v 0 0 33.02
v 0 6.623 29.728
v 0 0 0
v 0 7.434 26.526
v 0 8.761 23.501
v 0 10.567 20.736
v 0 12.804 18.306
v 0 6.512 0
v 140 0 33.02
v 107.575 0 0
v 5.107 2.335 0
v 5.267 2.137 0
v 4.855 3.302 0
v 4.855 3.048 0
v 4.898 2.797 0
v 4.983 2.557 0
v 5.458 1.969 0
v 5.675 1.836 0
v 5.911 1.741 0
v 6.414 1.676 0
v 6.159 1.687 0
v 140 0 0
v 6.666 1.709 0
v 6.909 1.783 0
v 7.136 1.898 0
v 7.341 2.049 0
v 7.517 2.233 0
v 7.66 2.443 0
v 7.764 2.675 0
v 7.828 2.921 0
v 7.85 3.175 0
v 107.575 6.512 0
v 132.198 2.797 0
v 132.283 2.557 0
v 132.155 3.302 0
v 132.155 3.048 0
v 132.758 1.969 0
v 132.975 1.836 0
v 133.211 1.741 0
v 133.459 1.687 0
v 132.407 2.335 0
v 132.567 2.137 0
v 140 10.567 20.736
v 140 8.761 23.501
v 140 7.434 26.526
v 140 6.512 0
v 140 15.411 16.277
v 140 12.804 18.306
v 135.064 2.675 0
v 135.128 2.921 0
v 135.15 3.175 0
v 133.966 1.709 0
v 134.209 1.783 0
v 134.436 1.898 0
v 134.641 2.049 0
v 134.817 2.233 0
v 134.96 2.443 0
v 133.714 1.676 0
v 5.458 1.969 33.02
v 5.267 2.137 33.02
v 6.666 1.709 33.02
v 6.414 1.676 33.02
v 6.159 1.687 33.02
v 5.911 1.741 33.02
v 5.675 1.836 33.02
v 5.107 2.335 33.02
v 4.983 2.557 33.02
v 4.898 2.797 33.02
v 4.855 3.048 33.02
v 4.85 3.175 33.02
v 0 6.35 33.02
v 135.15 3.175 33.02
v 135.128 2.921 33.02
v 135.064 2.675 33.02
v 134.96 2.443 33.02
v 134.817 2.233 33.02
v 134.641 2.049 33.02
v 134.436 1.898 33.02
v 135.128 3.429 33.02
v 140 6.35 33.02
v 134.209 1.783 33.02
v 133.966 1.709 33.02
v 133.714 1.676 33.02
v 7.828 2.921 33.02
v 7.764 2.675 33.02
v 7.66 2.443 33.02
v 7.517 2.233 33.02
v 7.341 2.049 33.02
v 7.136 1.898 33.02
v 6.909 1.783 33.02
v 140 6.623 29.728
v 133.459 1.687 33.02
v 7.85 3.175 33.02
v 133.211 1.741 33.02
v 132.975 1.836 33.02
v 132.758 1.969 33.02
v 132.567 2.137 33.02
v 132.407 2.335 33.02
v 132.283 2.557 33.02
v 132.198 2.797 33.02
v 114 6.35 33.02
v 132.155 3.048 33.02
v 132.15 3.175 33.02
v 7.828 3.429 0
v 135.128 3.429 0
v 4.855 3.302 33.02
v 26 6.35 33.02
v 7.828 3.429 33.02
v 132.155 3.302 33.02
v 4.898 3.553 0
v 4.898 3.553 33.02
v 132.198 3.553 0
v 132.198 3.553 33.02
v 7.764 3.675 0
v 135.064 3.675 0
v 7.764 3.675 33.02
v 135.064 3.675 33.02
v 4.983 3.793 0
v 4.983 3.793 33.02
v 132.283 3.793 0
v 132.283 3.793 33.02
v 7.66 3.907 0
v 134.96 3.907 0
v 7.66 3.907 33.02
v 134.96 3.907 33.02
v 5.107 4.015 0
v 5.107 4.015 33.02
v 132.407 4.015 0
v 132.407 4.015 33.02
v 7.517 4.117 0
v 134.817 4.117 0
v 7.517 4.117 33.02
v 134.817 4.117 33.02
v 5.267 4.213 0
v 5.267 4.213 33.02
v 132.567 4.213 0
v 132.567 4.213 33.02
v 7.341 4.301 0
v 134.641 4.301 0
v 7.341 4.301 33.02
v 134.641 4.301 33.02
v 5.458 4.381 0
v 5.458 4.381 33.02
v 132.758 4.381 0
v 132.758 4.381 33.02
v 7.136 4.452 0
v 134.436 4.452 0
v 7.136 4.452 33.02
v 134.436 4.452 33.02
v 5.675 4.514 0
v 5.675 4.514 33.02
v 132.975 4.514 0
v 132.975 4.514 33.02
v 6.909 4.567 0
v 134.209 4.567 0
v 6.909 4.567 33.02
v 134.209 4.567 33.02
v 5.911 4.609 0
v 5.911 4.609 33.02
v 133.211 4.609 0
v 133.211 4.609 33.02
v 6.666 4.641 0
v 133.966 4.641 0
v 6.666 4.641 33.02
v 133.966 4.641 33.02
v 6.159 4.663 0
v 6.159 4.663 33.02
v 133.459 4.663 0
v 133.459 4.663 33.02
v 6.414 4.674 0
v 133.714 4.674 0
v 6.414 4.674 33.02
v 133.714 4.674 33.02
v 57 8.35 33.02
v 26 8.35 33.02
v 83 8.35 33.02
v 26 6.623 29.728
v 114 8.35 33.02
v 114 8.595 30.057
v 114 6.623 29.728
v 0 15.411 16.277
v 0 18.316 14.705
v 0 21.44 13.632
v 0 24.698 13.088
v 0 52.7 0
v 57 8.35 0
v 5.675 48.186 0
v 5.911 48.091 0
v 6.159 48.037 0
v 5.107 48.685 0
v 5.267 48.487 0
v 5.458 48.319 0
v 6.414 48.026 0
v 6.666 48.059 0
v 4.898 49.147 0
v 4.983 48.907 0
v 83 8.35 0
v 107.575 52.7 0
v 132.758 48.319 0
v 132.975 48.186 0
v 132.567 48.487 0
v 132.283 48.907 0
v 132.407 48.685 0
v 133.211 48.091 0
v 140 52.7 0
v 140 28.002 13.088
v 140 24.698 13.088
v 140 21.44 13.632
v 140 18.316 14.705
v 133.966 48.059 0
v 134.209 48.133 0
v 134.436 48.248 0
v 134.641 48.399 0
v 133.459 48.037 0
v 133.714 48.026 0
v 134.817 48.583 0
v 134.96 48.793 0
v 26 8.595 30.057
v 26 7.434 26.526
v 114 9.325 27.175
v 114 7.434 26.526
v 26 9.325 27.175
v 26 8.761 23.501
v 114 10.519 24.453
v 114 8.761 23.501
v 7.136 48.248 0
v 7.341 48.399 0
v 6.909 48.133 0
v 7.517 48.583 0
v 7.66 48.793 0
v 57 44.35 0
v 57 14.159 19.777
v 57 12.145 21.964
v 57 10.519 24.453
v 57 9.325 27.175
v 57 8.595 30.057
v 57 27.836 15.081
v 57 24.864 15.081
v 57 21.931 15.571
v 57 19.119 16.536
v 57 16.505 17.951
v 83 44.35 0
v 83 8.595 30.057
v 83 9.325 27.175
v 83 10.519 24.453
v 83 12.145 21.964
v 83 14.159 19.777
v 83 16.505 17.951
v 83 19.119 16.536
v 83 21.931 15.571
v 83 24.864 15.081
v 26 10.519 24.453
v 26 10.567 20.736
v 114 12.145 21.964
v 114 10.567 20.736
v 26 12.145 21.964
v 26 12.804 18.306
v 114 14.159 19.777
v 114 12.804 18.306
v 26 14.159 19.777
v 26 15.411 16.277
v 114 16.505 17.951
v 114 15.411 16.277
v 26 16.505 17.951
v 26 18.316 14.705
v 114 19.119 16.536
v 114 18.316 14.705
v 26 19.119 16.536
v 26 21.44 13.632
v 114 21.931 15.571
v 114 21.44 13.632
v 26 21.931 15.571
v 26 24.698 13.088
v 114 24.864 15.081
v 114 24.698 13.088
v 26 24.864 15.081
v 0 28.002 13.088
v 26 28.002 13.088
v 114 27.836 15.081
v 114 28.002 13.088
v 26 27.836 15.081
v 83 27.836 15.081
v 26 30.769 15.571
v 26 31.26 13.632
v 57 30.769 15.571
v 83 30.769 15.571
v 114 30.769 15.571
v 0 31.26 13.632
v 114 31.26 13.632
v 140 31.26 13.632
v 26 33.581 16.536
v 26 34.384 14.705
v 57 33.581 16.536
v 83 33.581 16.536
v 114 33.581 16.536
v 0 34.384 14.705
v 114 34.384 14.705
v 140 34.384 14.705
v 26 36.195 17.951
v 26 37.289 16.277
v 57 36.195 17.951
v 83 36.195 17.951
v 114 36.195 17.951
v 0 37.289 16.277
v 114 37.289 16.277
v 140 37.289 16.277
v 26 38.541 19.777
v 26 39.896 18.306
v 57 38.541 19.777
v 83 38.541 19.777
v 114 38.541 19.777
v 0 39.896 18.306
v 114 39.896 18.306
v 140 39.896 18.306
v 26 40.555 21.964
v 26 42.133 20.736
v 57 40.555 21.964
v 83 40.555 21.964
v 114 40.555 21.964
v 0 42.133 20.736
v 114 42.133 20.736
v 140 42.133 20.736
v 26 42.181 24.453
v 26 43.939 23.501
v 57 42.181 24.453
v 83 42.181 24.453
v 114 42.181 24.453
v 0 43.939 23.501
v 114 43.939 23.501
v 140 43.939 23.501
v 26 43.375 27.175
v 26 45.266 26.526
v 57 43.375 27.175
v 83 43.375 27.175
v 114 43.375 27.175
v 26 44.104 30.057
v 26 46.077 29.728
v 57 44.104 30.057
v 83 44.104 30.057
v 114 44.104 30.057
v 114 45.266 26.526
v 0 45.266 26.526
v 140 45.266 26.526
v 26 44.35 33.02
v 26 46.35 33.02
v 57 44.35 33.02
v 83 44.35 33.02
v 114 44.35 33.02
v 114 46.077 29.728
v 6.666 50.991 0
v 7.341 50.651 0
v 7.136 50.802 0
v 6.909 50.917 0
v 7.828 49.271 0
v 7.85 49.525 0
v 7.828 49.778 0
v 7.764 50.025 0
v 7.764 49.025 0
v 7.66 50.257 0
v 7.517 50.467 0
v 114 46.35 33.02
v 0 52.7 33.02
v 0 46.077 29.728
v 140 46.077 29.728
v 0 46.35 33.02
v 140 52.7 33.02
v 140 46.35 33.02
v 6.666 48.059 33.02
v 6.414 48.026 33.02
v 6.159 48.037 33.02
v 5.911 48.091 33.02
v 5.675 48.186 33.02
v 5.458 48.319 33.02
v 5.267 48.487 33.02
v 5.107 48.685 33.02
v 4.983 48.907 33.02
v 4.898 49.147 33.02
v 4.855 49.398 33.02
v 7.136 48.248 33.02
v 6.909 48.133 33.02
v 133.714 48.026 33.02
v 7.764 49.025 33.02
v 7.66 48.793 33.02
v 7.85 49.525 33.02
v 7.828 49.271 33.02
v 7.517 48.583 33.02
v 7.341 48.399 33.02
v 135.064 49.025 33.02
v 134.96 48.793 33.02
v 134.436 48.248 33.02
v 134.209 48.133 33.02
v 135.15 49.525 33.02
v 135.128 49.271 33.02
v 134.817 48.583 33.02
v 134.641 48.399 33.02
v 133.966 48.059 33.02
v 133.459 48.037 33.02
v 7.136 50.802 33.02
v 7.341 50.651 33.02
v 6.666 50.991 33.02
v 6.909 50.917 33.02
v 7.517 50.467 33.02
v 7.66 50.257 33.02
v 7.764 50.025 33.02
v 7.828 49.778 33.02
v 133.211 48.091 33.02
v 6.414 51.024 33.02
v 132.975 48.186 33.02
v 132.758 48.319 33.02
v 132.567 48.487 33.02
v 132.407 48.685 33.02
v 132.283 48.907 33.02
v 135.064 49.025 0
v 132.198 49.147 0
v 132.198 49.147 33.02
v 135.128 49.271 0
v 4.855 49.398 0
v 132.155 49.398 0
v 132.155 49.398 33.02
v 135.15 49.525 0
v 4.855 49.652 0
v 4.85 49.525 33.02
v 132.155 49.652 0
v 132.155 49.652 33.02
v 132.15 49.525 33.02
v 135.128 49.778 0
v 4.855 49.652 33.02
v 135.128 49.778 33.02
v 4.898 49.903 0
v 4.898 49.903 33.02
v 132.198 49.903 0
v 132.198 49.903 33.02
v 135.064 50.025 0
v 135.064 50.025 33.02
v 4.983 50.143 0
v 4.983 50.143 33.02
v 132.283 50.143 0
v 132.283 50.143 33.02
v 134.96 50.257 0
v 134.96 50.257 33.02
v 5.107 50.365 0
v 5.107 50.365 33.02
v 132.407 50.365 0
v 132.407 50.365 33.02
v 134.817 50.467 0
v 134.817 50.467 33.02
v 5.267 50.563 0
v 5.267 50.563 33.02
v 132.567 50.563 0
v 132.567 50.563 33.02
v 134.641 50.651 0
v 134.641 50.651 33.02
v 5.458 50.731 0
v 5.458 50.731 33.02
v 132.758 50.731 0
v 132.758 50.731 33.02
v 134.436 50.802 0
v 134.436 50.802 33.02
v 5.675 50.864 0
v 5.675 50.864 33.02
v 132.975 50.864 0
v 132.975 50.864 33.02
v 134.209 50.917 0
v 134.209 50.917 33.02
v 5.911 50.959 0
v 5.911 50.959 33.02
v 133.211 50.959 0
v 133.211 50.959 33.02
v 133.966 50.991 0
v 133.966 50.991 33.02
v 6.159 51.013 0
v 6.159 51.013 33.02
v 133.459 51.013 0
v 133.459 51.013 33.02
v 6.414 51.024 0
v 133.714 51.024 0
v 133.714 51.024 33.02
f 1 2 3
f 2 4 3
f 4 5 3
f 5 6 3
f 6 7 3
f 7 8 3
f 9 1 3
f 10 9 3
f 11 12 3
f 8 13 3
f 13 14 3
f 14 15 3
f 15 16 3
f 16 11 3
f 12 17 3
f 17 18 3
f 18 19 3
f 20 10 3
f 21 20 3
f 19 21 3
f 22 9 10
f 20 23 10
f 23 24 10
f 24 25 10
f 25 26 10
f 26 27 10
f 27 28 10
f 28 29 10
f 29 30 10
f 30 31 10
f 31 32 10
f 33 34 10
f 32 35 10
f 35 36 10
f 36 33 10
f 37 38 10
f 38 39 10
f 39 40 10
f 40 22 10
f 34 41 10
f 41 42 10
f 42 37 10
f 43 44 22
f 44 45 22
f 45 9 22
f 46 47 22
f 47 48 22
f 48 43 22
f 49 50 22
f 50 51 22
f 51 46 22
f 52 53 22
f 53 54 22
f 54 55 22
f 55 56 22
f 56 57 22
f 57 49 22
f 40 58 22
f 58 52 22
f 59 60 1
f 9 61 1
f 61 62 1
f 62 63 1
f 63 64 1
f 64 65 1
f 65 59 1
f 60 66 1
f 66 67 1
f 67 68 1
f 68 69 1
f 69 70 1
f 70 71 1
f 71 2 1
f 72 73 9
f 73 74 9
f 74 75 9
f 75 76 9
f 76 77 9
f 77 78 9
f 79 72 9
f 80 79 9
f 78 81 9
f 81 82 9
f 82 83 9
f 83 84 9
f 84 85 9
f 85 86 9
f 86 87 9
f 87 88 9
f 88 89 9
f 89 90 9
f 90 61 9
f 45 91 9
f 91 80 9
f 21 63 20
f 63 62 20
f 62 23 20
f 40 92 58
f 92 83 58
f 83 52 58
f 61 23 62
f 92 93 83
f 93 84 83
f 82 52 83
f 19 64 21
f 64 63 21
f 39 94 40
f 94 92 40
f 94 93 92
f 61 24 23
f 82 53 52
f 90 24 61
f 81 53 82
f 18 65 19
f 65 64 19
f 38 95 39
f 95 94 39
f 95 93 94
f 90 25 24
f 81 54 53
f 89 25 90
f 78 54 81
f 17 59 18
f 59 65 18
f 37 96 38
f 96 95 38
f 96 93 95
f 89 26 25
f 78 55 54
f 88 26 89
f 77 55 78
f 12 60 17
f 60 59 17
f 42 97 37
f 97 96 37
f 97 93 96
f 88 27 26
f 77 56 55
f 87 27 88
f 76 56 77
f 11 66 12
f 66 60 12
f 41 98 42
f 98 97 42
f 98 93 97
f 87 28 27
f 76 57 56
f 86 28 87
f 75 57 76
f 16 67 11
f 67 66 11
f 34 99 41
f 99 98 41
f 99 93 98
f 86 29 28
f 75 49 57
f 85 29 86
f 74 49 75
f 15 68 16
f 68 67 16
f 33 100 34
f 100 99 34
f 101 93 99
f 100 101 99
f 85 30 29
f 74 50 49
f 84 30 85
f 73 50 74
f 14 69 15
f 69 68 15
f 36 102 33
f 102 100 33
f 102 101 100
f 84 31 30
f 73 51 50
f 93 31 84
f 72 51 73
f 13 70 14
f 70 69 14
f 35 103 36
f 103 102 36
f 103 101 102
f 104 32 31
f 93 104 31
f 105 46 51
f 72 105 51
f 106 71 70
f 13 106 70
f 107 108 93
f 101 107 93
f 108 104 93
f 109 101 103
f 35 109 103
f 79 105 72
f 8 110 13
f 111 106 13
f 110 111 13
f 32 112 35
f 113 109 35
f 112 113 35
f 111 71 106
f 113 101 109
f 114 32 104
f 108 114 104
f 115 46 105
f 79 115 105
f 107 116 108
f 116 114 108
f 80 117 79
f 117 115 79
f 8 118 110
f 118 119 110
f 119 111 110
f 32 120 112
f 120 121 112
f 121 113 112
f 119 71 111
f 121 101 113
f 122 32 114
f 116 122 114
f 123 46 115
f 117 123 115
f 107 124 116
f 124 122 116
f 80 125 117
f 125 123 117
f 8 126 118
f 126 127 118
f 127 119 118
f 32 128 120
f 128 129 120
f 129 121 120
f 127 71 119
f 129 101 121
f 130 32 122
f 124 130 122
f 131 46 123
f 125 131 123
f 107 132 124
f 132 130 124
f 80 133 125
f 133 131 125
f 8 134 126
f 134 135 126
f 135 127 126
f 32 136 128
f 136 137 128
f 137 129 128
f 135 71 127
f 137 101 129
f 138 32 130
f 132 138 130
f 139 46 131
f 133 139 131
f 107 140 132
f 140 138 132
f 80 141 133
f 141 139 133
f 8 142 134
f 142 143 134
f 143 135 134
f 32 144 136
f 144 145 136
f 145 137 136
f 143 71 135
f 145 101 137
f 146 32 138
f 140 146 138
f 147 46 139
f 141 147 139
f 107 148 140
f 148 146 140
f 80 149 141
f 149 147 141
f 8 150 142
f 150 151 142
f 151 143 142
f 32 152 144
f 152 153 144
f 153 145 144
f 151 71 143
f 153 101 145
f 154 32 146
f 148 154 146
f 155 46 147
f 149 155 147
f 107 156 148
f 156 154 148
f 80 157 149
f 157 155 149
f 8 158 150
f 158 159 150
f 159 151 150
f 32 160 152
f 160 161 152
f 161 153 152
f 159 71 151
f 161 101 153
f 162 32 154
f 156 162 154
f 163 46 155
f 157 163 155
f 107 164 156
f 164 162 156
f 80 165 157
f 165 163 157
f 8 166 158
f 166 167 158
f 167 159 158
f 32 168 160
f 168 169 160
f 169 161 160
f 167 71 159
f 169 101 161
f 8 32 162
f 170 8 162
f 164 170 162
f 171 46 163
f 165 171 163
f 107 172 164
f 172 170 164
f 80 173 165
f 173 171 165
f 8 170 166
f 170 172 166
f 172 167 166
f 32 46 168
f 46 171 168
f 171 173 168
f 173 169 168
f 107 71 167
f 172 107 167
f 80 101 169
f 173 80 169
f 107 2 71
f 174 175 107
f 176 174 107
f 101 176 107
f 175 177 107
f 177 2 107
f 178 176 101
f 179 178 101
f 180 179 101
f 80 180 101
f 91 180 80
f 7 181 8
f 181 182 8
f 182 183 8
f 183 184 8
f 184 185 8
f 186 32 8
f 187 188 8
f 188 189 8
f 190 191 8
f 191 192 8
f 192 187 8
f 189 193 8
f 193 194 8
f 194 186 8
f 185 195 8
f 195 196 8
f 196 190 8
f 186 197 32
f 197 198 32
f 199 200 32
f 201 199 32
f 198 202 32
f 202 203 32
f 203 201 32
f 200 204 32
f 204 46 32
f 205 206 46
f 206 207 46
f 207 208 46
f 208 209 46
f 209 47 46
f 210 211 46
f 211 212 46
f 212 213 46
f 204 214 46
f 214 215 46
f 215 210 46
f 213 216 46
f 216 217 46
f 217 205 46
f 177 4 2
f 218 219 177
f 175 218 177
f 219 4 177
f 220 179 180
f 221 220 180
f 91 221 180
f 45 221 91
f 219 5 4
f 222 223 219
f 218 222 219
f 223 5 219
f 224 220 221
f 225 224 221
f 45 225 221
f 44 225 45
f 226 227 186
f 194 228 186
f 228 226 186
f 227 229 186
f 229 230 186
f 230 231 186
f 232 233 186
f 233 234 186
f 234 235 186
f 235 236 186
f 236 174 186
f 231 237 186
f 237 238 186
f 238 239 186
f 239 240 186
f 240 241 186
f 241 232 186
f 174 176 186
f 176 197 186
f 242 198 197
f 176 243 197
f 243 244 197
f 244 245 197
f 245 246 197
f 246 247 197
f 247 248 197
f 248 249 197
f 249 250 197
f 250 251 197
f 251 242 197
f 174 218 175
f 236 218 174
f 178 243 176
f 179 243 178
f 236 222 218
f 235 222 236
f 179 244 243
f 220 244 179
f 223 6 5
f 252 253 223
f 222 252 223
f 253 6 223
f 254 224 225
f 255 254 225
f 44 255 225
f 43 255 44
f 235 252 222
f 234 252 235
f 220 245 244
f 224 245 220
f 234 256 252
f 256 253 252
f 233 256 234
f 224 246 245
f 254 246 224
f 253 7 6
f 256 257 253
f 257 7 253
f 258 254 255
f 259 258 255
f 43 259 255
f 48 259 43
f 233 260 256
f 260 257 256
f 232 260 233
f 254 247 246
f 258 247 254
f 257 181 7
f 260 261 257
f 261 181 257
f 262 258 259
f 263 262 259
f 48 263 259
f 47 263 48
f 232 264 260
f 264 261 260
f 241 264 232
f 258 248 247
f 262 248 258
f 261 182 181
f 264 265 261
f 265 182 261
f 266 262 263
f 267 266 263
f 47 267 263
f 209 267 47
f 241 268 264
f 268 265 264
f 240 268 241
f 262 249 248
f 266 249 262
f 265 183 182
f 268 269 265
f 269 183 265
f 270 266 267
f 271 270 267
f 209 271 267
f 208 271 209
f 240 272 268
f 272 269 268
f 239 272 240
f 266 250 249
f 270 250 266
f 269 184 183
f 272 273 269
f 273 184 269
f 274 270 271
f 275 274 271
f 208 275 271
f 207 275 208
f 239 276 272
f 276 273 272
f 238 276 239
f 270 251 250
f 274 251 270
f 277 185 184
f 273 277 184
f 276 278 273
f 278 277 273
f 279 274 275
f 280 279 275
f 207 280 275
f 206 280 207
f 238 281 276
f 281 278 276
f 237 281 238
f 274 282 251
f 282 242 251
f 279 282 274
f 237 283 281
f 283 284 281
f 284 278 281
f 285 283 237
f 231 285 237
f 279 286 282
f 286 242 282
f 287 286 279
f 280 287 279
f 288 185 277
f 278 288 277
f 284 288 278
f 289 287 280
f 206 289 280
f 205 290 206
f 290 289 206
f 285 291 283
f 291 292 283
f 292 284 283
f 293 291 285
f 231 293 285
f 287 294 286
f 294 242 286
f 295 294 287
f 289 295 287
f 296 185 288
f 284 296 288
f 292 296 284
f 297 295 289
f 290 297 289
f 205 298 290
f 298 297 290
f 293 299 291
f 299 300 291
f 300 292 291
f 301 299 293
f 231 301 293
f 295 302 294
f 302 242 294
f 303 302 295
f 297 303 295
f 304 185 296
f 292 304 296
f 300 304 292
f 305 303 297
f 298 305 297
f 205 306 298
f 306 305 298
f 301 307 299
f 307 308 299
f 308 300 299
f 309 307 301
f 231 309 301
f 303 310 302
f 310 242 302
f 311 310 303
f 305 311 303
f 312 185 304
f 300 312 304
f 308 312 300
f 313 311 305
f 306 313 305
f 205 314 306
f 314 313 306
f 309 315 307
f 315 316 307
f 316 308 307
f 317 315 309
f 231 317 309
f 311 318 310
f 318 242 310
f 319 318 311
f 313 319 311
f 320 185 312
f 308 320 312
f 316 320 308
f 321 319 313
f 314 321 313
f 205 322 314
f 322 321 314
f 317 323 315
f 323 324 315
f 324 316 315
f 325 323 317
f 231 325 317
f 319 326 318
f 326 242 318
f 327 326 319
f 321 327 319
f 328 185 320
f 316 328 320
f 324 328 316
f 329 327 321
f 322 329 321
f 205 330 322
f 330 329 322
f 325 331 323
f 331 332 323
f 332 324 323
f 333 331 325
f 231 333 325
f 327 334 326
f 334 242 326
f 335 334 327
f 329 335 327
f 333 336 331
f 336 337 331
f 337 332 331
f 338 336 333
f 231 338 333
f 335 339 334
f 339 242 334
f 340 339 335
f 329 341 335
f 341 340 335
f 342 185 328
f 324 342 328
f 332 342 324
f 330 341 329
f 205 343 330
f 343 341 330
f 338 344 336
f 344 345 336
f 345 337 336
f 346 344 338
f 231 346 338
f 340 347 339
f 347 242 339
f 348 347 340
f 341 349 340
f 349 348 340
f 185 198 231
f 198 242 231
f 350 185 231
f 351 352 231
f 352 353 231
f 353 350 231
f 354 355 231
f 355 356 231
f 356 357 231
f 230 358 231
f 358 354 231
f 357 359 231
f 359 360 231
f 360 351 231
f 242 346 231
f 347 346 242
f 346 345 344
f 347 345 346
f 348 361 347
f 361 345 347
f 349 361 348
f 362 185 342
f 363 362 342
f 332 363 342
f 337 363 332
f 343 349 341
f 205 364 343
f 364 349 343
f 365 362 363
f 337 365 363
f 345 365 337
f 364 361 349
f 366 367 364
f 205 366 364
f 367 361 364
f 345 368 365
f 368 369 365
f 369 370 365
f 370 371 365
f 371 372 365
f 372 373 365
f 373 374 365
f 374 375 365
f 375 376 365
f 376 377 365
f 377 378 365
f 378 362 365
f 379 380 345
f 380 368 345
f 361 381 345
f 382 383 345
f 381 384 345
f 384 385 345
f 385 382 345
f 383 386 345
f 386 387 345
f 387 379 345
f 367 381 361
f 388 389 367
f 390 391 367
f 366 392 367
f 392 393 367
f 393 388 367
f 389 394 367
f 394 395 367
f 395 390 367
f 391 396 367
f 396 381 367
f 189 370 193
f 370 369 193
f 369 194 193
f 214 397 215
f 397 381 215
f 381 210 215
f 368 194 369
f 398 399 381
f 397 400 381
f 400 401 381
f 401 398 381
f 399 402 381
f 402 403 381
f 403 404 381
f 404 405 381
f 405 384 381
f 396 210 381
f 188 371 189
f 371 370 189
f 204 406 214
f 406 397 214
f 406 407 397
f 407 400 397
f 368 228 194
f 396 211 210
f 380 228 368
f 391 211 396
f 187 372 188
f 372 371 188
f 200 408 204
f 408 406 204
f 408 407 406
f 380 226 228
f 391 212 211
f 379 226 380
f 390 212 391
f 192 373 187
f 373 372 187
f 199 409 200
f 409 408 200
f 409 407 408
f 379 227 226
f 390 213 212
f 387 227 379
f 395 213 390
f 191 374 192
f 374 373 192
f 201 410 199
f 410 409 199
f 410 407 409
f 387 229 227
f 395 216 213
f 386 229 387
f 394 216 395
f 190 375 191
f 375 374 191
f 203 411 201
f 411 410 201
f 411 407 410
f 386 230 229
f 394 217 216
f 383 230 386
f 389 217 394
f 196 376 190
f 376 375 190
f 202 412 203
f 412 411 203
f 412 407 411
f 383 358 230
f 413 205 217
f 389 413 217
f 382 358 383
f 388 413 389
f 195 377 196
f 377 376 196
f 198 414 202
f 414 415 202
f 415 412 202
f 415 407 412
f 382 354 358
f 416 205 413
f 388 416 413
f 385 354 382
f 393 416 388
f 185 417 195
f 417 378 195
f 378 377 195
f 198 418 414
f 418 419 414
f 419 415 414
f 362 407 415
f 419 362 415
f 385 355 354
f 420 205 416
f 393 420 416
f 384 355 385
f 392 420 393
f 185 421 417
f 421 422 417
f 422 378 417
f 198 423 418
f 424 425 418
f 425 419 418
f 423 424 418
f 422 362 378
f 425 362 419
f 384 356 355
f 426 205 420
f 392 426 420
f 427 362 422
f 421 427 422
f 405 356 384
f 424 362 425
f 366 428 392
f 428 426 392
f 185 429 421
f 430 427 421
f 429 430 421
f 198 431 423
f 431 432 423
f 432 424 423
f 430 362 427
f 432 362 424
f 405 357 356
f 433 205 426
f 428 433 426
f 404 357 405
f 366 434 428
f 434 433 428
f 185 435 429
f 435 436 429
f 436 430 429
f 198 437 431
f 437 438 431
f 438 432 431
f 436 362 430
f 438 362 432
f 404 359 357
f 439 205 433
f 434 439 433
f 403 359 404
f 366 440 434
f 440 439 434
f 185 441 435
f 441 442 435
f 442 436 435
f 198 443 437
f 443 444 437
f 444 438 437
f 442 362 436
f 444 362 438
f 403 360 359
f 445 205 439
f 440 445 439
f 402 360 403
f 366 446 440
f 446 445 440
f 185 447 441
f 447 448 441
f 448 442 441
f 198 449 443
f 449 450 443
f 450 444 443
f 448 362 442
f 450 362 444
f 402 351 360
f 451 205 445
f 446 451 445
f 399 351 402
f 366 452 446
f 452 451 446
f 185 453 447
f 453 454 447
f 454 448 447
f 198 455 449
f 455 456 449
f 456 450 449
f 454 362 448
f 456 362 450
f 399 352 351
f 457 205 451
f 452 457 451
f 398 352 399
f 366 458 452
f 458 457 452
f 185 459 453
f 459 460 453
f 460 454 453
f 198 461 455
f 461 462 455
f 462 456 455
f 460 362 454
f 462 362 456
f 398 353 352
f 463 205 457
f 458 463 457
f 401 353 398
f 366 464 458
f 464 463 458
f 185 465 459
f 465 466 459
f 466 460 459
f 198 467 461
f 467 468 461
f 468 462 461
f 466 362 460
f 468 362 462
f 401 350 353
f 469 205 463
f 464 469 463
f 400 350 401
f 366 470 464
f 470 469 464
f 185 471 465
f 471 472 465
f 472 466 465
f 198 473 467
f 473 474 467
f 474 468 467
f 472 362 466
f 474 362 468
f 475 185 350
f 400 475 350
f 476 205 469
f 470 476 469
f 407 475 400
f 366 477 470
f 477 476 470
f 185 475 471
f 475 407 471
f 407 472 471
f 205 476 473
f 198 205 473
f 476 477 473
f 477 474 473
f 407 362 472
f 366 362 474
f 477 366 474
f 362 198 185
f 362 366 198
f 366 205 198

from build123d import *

# Parameters (mm, degrees)
SKETCH1_W               = 139.999999908
SKETCH1_H               = 52.6999962
BOSS_EXTRUDE1_DEPTH     = 33.02
CUT_EXTRUDE1_DEPTH      = 154.191416123
CUT_EXTRUDE1_DEPTH_BACK = 154.191416123
CUT_EXTRUDE2_DEPTH      = 26
CUT_EXTRUDE3_START      = -26
CUT_EXTRUDE3_DEPTH      = 26
CUT_EXTRUDE4_DEPTH      = 154.191416123
CUT_EXTRUDE4_DEPTH_BACK = 154.191416123
SKETCH6_W               = 26
SKETCH6_H               = 36
CUT_EXTRUDE5_DEPTH      = 154.191416123
CUT_EXTRUDE5_DEPTH_BACK = 154.191416123
SKETCH7_R               = 1.500000048
SKETCH7_R_2             = 1.5


with BuildPart() as part:
    # Sketch1 → Boss-Extrude1 (new body)
    with BuildSketch(Plane.XY):
        with Locations((69.999999954, 26.3499981)):
            Rectangle(SKETCH1_W, SKETCH1_H)
    extrude(amount=BOSS_EXTRUDE1_DEPTH)

    # Sketch2 → Cut-Extrude1 (cut, two sides: drawn at the far end of the back side and taken through both)
    with BuildSketch(Plane.ZY.offset(-CUT_EXTRUDE1_DEPTH_BACK)):
        with BuildLine():
            Line((33.02, 44.3499981), (33.02, 8.3499981))
            ThreePointArc((33.02, 8.3499981), (15.02, 26.3499981), (33.02, 44.3499981))
        make_face()
    extrude(amount=CUT_EXTRUDE1_DEPTH + CUT_EXTRUDE1_DEPTH_BACK, mode=Mode.SUBTRACT)

    # Sketch3 → Cut-Extrude2 (cut)
    with BuildSketch(Plane.ZY):
        with BuildLine():
            Line((33.02, 46.3499981), (33.02, 6.3499981))
            ThreePointArc((33.02, 6.3499981), (13.02, 26.3499981), (33.02, 46.3499981))
        make_face()
    extrude(amount=-CUT_EXTRUDE2_DEPTH, mode=Mode.SUBTRACT)

    # Sketch5 → Cut-Extrude3 (cut)
    with BuildSketch(Plane(origin=(139.999999908, 0, 0), x_dir=(0, 0, -1), z_dir=(1, 0, 0)).offset(CUT_EXTRUDE3_START)):
        with BuildLine():
            Line((-33.02, 46.3499981), (-33.02, 6.3499981))
            ThreePointArc((-33.02, 6.3499981), (-13.02, 26.3499981), (-33.02, 46.3499981))
        make_face()
    extrude(amount=CUT_EXTRUDE3_DEPTH, mode=Mode.SUBTRACT)

    # Sketch6 → Cut-Extrude4 (cut, two sides: drawn at the far end of the back side and taken through both)
    with BuildSketch(Plane(origin=(0, 0, 0), x_dir=(-1, 0, 0), z_dir=(0, 0, -1)).offset(-CUT_EXTRUDE4_DEPTH_BACK)):
        with Locations((-69.999999954, 26.3499981)):
            Rectangle(SKETCH6_W, SKETCH6_H)
    extrude(amount=CUT_EXTRUDE4_DEPTH + CUT_EXTRUDE4_DEPTH_BACK, mode=Mode.SUBTRACT)

    # Sketch7 → Cut-Extrude5 (cut, two sides: drawn at the far end of the back side and taken through both)
    with BuildSketch(Plane.XY.offset(33.02).offset(-CUT_EXTRUDE5_DEPTH_BACK)):
        with Locations((6.35, 49.52499715)):
            Circle(SKETCH7_R)
        with Locations((6.35, 3.17499905)):
            Circle(SKETCH7_R_2)
        with Locations((133.649999908, 49.52499715)):
            Circle(SKETCH7_R_2)
        with Locations((133.649999908, 3.17499905)):
            Circle(SKETCH7_R_2)
    extrude(amount=CUT_EXTRUDE5_DEPTH + CUT_EXTRUDE5_DEPTH_BACK, mode=Mode.SUBTRACT)


solid = part.part
